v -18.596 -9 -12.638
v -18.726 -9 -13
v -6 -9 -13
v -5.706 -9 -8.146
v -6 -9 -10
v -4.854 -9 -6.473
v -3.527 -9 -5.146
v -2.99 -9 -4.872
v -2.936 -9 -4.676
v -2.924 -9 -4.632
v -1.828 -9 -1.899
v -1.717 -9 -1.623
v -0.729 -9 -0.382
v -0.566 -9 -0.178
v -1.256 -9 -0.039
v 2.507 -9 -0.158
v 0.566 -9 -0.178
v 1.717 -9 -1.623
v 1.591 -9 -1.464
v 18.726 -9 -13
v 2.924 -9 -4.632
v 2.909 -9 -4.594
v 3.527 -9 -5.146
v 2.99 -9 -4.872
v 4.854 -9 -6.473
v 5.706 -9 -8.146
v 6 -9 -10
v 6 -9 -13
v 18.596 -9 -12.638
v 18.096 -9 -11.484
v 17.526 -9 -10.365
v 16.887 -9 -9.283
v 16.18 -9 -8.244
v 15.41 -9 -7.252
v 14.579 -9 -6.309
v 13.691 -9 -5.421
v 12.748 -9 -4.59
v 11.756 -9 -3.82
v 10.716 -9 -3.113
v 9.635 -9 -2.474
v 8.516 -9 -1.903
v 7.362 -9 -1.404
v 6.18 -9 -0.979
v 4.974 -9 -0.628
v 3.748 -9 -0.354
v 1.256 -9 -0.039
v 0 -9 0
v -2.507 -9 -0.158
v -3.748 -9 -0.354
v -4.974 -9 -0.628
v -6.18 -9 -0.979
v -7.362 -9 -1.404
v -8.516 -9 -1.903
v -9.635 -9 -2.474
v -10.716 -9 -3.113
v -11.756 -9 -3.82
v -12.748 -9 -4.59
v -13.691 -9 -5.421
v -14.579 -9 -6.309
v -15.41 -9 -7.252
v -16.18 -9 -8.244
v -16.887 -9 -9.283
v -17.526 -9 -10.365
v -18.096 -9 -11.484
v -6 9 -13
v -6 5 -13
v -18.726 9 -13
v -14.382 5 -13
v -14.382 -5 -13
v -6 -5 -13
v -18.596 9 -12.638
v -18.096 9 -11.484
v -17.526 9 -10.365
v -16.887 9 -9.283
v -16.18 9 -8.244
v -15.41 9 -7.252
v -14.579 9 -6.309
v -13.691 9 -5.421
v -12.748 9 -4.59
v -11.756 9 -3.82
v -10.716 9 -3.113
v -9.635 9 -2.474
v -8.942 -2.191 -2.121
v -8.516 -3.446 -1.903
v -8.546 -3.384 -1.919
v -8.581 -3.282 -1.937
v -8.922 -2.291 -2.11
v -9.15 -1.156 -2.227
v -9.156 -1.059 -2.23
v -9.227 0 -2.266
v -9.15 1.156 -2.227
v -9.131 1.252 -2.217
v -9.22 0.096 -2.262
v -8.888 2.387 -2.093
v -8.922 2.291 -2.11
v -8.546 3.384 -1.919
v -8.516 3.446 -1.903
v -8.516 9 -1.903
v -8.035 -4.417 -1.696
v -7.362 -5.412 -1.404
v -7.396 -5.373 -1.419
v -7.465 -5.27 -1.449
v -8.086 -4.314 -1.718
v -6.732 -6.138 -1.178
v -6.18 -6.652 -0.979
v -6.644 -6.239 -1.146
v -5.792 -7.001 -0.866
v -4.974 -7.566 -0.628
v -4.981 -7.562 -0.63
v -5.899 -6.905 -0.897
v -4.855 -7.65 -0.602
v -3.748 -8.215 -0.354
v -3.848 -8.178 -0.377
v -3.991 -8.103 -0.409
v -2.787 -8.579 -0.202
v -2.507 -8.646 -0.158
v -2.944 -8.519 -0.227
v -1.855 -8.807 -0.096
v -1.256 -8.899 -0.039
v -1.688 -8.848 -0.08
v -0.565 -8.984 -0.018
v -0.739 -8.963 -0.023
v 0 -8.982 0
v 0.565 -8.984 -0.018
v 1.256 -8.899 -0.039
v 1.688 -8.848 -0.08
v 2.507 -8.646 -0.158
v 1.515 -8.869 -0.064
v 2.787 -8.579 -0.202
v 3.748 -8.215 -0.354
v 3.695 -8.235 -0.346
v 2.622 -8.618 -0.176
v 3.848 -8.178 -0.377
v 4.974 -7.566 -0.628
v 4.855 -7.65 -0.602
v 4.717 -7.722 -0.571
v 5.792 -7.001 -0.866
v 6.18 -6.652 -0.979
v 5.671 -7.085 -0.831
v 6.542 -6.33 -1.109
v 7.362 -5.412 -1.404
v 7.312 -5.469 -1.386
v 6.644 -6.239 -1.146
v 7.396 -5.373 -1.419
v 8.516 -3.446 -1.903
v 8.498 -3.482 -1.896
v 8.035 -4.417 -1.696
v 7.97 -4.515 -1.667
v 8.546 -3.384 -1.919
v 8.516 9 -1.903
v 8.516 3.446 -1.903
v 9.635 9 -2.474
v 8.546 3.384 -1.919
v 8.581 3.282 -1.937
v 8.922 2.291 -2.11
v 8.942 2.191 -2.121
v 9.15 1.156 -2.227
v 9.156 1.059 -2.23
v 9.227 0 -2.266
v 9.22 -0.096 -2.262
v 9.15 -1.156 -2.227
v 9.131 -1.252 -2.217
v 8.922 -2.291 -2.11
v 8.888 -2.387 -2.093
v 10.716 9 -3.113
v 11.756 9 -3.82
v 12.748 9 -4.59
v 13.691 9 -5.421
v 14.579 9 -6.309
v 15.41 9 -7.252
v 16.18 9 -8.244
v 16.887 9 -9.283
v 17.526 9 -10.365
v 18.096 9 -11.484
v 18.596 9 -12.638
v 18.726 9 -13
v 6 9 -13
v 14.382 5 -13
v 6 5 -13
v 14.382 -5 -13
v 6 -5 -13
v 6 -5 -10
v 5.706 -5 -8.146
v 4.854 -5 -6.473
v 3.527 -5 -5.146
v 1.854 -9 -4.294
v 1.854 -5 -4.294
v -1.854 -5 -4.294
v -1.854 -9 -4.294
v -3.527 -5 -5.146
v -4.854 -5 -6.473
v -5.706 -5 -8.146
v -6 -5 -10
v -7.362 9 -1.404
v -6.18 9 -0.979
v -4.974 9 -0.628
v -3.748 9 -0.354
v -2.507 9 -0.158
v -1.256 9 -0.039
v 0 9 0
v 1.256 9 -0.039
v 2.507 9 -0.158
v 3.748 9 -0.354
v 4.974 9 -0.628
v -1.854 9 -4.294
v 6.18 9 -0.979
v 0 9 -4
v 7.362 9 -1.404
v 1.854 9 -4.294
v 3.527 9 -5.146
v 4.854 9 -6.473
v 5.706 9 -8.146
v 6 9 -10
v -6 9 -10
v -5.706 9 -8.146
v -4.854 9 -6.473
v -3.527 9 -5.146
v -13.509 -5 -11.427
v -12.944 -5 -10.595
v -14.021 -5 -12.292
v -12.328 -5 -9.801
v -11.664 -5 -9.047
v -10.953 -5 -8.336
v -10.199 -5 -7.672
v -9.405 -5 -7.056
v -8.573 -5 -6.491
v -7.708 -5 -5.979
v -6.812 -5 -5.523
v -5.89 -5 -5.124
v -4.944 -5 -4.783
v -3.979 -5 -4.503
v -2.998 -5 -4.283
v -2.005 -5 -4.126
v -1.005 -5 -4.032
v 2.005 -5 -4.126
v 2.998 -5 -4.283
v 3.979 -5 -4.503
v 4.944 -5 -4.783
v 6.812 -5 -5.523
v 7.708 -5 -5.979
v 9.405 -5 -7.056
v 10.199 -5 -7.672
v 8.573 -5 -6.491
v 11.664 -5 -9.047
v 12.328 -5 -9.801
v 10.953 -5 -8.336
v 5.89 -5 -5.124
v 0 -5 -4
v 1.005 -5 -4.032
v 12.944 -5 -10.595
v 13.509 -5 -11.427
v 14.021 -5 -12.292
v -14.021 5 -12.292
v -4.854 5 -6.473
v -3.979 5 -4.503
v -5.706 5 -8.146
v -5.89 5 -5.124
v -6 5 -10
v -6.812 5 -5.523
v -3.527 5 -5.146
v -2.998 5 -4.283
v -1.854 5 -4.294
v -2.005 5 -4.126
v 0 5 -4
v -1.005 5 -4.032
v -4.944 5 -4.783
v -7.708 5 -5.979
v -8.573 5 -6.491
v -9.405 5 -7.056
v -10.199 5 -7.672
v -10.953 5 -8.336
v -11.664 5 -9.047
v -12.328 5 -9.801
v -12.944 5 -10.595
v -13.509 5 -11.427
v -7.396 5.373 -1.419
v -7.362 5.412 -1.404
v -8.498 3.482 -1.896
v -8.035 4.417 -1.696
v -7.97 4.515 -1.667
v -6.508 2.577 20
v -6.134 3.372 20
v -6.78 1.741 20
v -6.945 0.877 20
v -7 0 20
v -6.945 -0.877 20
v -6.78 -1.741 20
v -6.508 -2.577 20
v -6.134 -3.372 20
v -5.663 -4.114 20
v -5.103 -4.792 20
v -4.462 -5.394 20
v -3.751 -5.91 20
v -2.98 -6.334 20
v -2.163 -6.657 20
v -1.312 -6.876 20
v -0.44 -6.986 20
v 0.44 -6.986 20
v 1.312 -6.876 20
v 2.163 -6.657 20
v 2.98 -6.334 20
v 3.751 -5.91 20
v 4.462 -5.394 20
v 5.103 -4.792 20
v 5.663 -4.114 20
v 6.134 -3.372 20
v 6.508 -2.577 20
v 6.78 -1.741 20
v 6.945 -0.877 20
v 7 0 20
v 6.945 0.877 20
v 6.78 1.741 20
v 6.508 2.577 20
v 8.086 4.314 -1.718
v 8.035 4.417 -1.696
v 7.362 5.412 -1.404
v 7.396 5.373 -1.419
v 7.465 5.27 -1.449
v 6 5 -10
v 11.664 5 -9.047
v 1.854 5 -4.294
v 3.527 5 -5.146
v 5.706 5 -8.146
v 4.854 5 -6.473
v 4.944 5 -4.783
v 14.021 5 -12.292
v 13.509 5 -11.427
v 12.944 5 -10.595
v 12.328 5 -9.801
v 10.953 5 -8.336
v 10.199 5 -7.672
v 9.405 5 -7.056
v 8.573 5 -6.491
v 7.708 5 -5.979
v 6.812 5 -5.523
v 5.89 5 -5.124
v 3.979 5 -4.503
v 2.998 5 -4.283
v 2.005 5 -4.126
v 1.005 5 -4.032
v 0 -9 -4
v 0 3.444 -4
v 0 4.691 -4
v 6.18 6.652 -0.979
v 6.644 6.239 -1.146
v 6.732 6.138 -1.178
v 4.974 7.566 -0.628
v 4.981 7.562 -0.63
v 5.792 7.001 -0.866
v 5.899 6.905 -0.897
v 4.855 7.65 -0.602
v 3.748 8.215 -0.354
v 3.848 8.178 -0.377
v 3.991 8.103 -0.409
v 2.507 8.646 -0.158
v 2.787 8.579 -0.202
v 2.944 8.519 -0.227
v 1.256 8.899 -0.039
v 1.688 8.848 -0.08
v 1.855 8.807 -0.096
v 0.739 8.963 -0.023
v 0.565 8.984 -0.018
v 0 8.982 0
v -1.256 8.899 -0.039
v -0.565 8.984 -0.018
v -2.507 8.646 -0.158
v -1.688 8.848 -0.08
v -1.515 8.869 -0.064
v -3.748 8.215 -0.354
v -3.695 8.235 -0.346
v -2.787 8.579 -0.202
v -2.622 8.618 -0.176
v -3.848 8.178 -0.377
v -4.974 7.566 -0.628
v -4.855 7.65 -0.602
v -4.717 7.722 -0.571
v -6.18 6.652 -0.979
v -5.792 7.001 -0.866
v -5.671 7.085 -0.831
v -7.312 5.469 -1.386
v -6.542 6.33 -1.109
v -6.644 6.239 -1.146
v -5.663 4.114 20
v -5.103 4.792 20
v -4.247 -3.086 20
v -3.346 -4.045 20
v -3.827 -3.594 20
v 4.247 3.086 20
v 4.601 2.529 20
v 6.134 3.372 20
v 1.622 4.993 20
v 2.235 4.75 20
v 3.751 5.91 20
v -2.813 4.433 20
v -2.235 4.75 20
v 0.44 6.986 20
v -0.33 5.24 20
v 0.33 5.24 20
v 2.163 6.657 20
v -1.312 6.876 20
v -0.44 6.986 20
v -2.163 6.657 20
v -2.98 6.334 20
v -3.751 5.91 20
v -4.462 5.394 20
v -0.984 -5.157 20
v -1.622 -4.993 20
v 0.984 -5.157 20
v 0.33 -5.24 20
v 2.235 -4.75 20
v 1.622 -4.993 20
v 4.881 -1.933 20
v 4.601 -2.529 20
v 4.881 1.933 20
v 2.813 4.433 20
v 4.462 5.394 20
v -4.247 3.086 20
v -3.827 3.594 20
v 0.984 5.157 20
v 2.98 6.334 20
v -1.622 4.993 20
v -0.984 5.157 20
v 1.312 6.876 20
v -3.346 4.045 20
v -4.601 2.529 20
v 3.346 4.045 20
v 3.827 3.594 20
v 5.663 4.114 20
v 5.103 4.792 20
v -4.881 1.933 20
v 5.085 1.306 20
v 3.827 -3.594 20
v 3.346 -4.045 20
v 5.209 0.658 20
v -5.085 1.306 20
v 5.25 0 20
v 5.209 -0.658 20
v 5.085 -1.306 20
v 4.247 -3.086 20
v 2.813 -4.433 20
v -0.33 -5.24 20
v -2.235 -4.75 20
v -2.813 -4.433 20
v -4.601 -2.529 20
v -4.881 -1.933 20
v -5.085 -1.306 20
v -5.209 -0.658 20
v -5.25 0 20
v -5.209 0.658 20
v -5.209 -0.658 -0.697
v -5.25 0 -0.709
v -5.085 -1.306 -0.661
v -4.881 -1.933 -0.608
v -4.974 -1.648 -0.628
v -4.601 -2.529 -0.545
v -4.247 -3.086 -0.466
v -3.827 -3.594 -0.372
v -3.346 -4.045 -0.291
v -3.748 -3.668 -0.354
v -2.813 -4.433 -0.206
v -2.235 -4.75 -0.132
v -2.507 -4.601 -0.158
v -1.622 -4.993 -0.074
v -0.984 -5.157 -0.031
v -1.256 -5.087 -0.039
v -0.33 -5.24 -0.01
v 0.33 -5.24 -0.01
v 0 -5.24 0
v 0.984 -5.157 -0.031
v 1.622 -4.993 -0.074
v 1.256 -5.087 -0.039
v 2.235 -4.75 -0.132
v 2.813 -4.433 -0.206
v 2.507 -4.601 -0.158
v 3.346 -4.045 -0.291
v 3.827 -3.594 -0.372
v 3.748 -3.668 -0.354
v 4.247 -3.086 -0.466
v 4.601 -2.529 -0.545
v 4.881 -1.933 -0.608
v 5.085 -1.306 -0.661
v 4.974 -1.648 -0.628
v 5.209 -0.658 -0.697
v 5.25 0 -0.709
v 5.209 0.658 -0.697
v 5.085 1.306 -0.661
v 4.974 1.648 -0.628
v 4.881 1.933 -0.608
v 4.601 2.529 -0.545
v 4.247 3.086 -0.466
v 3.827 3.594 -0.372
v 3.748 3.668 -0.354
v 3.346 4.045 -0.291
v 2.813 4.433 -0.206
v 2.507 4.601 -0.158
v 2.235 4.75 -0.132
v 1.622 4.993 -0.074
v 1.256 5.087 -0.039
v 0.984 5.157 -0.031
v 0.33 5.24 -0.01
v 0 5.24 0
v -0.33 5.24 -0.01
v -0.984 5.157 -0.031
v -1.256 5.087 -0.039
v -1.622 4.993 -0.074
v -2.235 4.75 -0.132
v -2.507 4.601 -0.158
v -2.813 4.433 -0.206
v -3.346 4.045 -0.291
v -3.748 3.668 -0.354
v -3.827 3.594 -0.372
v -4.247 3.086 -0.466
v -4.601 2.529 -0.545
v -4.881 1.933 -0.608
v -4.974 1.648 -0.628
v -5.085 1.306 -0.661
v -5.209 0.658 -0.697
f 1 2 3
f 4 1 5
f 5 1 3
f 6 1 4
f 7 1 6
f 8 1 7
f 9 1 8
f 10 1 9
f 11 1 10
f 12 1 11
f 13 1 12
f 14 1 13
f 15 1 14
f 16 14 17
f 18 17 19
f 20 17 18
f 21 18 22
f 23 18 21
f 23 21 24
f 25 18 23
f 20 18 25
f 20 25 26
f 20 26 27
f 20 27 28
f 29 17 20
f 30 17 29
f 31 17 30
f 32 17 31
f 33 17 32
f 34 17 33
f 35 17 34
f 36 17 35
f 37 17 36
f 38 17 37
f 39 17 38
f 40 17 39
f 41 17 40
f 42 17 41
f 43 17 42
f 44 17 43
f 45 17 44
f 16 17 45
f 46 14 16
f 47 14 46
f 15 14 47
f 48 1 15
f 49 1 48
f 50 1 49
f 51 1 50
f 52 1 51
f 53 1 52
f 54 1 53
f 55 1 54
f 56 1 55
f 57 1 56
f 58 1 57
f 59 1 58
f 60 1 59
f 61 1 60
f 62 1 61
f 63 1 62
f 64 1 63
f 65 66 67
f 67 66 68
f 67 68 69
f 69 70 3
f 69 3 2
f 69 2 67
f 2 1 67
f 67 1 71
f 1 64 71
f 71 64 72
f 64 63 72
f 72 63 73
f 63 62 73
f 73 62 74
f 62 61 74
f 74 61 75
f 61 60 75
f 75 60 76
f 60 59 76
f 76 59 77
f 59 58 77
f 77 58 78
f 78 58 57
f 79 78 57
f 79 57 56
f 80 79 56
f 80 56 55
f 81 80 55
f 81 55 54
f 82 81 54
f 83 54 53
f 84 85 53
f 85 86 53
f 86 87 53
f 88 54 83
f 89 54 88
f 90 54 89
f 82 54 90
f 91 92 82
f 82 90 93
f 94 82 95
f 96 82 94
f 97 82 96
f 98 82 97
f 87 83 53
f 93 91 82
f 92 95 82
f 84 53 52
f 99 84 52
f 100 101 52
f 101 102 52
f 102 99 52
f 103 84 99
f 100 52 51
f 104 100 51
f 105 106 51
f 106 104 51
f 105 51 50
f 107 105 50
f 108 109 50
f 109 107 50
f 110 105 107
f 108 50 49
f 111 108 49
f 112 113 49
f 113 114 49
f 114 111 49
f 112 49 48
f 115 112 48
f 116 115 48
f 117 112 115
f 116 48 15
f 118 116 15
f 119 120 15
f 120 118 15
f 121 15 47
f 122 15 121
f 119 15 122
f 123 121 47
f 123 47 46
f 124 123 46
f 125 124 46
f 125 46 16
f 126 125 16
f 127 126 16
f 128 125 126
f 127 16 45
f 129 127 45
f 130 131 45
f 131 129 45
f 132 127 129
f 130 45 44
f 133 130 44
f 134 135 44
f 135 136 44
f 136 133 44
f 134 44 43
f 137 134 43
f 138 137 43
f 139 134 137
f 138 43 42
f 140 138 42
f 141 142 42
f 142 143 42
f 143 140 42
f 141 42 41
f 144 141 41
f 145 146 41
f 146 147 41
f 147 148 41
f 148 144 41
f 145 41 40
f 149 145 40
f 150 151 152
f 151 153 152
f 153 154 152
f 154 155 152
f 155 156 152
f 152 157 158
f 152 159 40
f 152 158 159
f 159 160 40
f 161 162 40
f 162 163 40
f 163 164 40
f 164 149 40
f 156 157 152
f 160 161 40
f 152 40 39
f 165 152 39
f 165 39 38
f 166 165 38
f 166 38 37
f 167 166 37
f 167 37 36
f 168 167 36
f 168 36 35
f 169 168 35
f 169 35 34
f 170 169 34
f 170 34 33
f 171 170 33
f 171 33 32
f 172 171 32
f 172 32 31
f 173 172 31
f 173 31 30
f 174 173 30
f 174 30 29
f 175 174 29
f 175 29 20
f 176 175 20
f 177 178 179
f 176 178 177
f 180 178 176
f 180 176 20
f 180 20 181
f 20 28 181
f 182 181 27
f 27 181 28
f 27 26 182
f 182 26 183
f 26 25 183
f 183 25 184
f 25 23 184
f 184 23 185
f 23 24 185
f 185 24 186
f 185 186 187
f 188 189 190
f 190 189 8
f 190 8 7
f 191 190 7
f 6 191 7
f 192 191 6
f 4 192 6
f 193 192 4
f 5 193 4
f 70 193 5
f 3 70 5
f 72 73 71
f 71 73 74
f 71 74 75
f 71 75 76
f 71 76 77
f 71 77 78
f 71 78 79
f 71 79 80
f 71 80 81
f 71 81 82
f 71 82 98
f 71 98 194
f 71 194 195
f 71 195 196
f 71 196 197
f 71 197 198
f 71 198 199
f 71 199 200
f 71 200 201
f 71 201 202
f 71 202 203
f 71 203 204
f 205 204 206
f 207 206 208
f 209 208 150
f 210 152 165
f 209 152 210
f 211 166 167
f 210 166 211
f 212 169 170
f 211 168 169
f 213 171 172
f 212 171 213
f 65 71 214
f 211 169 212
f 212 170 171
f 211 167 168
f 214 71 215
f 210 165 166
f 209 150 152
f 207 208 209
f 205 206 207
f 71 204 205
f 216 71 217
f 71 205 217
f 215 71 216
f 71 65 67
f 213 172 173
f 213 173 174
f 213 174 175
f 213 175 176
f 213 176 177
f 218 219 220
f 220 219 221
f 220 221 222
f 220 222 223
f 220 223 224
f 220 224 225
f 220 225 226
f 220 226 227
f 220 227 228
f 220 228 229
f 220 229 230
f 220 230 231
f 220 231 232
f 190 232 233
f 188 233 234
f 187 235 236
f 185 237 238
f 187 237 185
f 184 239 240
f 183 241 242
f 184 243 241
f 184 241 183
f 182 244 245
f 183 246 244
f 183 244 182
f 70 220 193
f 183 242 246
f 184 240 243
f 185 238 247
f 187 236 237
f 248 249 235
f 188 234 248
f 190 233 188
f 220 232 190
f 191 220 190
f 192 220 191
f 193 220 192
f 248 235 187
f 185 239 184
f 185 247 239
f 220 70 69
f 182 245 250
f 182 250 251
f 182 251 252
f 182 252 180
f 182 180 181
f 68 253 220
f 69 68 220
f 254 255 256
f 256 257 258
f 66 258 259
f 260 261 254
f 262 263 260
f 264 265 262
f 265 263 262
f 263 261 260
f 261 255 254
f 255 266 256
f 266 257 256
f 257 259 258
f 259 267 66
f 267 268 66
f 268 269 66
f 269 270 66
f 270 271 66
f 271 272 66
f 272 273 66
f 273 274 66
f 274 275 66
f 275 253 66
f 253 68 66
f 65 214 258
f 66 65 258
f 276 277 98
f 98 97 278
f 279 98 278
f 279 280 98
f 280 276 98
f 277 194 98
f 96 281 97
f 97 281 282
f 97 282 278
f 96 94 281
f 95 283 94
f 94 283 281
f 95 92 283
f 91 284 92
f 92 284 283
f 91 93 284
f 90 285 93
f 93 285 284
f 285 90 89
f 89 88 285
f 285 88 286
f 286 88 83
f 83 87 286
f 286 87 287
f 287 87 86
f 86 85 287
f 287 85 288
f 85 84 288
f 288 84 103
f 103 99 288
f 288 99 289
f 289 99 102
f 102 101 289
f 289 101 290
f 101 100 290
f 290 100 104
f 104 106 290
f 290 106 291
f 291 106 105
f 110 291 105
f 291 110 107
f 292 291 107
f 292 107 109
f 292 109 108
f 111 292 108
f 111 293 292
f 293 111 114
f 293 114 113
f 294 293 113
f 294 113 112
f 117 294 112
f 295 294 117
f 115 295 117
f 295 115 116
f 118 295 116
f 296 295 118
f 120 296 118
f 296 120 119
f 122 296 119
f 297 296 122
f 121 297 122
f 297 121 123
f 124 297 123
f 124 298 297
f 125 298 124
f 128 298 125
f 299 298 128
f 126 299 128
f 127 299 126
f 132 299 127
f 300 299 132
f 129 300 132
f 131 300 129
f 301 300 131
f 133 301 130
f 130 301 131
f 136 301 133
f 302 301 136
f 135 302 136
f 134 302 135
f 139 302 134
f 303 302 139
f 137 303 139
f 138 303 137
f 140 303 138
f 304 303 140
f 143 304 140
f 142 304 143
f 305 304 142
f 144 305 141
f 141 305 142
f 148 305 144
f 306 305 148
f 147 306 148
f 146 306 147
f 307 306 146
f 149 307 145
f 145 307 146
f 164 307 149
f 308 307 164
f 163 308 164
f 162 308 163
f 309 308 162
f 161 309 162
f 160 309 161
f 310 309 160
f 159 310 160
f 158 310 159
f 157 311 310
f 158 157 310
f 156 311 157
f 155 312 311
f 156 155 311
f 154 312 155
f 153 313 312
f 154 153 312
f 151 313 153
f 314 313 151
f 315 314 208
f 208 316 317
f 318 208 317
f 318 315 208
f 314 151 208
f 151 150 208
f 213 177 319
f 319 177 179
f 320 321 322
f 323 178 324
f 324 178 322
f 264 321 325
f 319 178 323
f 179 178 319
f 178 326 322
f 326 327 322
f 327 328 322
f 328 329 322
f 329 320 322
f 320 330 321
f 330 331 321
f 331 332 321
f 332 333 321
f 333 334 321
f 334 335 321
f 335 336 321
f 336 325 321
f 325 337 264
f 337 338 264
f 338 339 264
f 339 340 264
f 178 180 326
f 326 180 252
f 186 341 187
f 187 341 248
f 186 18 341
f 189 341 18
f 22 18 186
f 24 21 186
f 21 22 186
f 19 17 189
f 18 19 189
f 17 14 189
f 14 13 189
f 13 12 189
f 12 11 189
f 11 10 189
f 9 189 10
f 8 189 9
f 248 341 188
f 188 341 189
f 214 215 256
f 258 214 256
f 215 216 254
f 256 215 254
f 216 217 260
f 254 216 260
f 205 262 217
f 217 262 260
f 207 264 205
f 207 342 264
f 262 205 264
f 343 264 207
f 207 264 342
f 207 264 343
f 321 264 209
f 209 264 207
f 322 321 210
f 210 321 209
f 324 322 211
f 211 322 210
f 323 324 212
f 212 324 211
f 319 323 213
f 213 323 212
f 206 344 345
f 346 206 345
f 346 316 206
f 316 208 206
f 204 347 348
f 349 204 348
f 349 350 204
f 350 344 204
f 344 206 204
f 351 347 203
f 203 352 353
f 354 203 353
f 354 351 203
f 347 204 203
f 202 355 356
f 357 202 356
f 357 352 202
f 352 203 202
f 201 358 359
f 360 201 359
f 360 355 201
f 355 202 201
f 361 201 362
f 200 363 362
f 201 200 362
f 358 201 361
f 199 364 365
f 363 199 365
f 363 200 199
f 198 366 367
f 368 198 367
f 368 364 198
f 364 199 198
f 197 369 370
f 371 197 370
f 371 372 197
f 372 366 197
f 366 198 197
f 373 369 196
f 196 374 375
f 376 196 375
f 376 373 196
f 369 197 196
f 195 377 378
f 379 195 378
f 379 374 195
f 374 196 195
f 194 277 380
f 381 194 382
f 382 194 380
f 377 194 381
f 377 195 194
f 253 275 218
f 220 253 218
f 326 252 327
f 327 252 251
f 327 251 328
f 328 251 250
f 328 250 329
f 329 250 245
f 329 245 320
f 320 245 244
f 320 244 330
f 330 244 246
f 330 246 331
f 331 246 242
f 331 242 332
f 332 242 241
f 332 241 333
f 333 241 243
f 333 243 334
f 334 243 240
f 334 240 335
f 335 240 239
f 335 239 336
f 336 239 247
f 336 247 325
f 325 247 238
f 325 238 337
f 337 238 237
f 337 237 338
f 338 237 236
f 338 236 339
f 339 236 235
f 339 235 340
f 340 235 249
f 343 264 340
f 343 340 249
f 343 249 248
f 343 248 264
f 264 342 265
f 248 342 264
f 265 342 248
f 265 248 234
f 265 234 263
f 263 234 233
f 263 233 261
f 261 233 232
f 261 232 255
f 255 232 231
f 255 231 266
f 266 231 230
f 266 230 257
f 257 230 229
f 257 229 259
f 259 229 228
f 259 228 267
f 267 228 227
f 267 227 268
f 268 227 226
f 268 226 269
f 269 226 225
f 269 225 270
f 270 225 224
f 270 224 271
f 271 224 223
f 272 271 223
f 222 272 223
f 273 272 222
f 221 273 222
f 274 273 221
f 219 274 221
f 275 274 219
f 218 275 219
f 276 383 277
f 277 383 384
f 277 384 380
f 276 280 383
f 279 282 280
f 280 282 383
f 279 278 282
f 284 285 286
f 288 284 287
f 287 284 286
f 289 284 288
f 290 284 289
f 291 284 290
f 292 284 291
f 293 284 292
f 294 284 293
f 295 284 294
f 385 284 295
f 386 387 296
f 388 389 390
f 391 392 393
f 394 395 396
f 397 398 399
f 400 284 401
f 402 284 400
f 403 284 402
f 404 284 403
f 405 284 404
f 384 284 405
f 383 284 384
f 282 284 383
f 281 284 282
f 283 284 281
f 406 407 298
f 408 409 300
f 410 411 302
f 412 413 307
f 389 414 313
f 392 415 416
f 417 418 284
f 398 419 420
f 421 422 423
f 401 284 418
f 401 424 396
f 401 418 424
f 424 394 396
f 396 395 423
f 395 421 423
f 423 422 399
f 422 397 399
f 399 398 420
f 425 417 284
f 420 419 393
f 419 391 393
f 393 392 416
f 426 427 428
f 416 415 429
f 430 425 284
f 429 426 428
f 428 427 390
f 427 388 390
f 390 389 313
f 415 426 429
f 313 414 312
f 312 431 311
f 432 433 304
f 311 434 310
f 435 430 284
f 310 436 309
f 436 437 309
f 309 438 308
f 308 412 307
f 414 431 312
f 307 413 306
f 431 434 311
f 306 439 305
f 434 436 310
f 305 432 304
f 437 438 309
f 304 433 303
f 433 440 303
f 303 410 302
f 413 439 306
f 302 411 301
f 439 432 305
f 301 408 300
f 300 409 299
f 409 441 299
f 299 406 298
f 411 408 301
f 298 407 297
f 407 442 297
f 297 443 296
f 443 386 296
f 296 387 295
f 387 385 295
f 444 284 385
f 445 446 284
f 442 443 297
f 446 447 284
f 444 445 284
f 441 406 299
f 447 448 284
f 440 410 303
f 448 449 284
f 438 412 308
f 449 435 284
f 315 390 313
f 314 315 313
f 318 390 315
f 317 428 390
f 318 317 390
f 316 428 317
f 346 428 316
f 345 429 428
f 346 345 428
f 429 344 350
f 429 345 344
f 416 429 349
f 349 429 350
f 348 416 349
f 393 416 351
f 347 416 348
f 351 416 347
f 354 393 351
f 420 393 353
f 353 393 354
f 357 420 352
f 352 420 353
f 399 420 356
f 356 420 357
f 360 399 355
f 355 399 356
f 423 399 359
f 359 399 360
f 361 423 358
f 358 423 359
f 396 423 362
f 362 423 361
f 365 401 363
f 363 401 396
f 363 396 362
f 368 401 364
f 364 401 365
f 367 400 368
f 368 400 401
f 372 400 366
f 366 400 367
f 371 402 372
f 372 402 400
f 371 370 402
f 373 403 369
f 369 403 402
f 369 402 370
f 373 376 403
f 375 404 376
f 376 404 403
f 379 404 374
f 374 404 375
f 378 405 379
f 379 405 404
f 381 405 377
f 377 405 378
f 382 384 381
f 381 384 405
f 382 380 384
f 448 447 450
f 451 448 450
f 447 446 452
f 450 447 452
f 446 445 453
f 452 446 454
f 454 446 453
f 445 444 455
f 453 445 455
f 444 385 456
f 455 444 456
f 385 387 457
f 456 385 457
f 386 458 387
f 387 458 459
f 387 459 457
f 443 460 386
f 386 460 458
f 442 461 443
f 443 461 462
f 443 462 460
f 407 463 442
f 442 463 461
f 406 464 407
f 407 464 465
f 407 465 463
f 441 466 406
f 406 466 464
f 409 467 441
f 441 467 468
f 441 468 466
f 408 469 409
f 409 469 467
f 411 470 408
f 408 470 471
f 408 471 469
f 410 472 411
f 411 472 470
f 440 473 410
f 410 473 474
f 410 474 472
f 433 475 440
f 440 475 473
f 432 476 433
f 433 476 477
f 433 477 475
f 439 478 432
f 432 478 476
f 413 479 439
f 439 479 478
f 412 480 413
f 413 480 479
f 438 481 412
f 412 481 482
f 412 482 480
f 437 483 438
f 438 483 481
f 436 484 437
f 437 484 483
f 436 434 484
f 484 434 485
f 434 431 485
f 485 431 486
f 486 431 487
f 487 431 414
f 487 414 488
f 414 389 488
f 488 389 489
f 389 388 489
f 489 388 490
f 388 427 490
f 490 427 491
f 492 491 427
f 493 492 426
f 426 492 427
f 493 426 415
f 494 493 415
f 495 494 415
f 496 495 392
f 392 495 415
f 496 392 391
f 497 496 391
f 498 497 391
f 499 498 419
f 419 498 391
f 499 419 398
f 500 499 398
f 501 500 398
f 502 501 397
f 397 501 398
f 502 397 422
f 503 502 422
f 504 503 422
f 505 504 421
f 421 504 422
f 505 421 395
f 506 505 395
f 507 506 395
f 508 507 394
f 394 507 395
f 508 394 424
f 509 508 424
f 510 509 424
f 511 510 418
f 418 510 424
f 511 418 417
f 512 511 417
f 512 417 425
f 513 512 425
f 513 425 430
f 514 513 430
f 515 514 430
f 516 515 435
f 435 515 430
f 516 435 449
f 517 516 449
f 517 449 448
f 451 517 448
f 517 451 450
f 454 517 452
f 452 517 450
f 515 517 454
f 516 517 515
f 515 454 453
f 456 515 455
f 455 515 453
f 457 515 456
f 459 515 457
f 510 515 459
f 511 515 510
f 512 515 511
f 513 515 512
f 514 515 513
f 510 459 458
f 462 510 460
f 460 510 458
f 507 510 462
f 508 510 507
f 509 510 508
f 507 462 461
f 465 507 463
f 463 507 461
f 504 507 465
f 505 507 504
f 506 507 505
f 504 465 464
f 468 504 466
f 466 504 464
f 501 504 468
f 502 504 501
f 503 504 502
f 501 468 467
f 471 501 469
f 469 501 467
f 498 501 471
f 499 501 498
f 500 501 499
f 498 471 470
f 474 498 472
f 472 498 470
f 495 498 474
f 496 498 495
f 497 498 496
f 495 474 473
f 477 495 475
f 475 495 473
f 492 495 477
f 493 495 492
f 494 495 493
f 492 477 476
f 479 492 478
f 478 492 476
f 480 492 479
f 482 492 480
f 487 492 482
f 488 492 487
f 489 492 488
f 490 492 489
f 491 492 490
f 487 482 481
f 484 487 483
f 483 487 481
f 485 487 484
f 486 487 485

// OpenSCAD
// Cube with rounded edges

el = 1e-2;

module rcube_rcorner ( r, fn )
{
   difference() {
      translate ( -el * [ 1, 1, 1 ] ) cube( r + el );
      translate ( [ r, r, r ] ) sphere( r, $fn = fn );
   }
}

module rcube_redge ( r, l, fn )
{
   difference() {
      translate ( -2 * el * [ 1, 1, 1 ] ) cube( [ r + 2 * el, r + 2 * el, l + 4 * el ] );
      translate ( [ r, r, -el ] ) cylinder( r = r, h = l + 2 * el, $fn = fn );
   }
}

module rcube( size = 1, center = false, r = 0, $fn = 20 )
{
        sz = len( size ) == undef ? [ size, size, size ] : size;
        displacement = center == true ? -size / 2: [ 0, 0, 0 ];

        translate( displacement ) {
                difference() {
                        cube( size = sz );
                        union (){
                                // Round the edges:

                                rcube_redge( r, sz[2], fn = $fn );
                                translate( [ sz[0], 0, 0 ] ) rotate( 90, [ 0, 0, 1 ] ) rcube_redge( r, sz[2], fn = $fn );
                                translate( [ sz[0], sz[1], 0 ] ) rotate( 180, [ 0, 0, 1 ] ) rcube_redge( r, sz[2], fn = $fn );
                                translate( [ 0, sz[1], 0 ] ) rotate( 270, [ 0, 0, 1 ] ) rcube_redge( r, sz[2], fn = $fn );

                                translate( [ 0, sz[1], 0 ] ) rotate ( 90, [ 1, 0, 0 ] ) rcube_redge( r, sz[1], fn = $fn );
                                translate( [ 0, 0, sz[2] ] ) rotate ( -90, [ 1, 0, 0 ] ) rcube_redge( r, sz[1], fn = $fn );
                                translate( [ sz[0], 0, 0 ] ) rotate ( 180, [ 0, 1, 1 ] ) rcube_redge( r, sz[1], fn = $fn );
                                translate( [ sz[0], sz[1], sz[2] ] ) rotate ( 180, [ 0, 1, -1 ] ) rcube_redge( r, sz[1], fn = $fn );

                                translate( [ sz[0], 0, 0 ] ) rotate( -90, [ 0, 1, 0 ] )  rcube_redge( r, sz[0], fn = $fn );
                                translate( [ 0, 0, sz[2] ] ) rotate( 90, [ 0, 1, 0 ] )  rcube_redge( r, sz[0], fn = $fn );
                                translate( [ 0, sz[1], 0 ] ) rotate( 180, [ 1, 0, 1 ] )  rcube_redge( r, sz[0], fn = $fn );
                                translate( [ sz[0], sz[1], sz[2] ] ) rotate( 180, [ 1, 0, -1 ] )  rcube_redge( r, sz[0], fn = $fn );

                                // Round the corners:
                                rcube_rcorner( r, fn = $fn );
                                translate( [ sz[0], 0, 0 ] ) rotate( 90, [ 0, 0, 1 ] ) rcube_rcorner( r, fn = $fn );
                                translate( [ sz[0], sz[1], 0 ] ) rotate( 180, [ 0, 0, 1 ] ) rcube_rcorner( r, fn = $fn );
                                translate( [ 0, sz[1], 0 ] ) rotate( 270, [ 0, 0, 1 ] ) rcube_rcorner( r, fn = $fn );

                                translate( [ 0, 0, sz[2] ] ) rotate( 90, [ 0, 0, 1 ] ) rotate( 180, [ 1, 0, 0 ] ) rcube_rcorner( r, fn = $fn );
                                translate( [ sz[0], 0, sz[2] ] ) rotate( 180, [ 0, 0, 1 ] ) rotate( 180, [ 1, 0, 0 ] ) rcube_rcorner( r, fn = $fn );
                                translate( [ sz[0], sz[1], sz[2] ] ) rotate( 270, [ 0, 0, 1 ] ) rotate( 180, [ 1, 0, 0 ] ) rcube_rcorner( r, fn = $fn );
                                translate( [ 0, sz[1], sz[2] ] ) rotate( 180, [ 1, 0, 0 ] ) rcube_rcorner( r, fn = $fn );

                        }
                }
        }
}


inner_d = 10.5;
outer_d = 14;
delta = 5;
height = 30 - delta;
wall_thick = 2;
$fn = 50;


big_rad = 20;

difference () {
	union () {
		translate ( [ 0, 9, - big_rad ] )
			rotate ( [ 90, 0, 0 ] )
				cylinder( r = big_rad, h = 18, $fn = 2 * $fn );
		translate ( [ 0, 0, -10 + delta ] )
			difference () {
				cylinder( h = height, r2 = outer_d / 2, r1 = outer_d / 2 + 2 + 0.5, $fn = $fn );
				translate ( [ 0, 0, -0.1 ] )
					cylinder( h = height + 0.2, r = inner_d / 2, $fn = $fn );
			}
	}
	translate( [ 0, 0, - big_rad - 13 ] )
		cube( [ 100, 100, 2 * big_rad ], center = true );
	translate ( [ 0, 5, - big_rad ] )
	rotate ( [ 90, 0, 0 ] )
		cylinder( r = big_rad - 4, h = 10, $fn = 2 * $fn );
	translate( [ -100, 9, -100 ] )
		cube( [ 200, 10, 200 ] );
	translate( [ -100, -19, -100 ] )
		cube( [ 200, 10, 200 ] );
	translate( [ -6, -25, -100 - 4 ] )
		rcube( [ 12, 50, 100 ], r = 6 );
}
